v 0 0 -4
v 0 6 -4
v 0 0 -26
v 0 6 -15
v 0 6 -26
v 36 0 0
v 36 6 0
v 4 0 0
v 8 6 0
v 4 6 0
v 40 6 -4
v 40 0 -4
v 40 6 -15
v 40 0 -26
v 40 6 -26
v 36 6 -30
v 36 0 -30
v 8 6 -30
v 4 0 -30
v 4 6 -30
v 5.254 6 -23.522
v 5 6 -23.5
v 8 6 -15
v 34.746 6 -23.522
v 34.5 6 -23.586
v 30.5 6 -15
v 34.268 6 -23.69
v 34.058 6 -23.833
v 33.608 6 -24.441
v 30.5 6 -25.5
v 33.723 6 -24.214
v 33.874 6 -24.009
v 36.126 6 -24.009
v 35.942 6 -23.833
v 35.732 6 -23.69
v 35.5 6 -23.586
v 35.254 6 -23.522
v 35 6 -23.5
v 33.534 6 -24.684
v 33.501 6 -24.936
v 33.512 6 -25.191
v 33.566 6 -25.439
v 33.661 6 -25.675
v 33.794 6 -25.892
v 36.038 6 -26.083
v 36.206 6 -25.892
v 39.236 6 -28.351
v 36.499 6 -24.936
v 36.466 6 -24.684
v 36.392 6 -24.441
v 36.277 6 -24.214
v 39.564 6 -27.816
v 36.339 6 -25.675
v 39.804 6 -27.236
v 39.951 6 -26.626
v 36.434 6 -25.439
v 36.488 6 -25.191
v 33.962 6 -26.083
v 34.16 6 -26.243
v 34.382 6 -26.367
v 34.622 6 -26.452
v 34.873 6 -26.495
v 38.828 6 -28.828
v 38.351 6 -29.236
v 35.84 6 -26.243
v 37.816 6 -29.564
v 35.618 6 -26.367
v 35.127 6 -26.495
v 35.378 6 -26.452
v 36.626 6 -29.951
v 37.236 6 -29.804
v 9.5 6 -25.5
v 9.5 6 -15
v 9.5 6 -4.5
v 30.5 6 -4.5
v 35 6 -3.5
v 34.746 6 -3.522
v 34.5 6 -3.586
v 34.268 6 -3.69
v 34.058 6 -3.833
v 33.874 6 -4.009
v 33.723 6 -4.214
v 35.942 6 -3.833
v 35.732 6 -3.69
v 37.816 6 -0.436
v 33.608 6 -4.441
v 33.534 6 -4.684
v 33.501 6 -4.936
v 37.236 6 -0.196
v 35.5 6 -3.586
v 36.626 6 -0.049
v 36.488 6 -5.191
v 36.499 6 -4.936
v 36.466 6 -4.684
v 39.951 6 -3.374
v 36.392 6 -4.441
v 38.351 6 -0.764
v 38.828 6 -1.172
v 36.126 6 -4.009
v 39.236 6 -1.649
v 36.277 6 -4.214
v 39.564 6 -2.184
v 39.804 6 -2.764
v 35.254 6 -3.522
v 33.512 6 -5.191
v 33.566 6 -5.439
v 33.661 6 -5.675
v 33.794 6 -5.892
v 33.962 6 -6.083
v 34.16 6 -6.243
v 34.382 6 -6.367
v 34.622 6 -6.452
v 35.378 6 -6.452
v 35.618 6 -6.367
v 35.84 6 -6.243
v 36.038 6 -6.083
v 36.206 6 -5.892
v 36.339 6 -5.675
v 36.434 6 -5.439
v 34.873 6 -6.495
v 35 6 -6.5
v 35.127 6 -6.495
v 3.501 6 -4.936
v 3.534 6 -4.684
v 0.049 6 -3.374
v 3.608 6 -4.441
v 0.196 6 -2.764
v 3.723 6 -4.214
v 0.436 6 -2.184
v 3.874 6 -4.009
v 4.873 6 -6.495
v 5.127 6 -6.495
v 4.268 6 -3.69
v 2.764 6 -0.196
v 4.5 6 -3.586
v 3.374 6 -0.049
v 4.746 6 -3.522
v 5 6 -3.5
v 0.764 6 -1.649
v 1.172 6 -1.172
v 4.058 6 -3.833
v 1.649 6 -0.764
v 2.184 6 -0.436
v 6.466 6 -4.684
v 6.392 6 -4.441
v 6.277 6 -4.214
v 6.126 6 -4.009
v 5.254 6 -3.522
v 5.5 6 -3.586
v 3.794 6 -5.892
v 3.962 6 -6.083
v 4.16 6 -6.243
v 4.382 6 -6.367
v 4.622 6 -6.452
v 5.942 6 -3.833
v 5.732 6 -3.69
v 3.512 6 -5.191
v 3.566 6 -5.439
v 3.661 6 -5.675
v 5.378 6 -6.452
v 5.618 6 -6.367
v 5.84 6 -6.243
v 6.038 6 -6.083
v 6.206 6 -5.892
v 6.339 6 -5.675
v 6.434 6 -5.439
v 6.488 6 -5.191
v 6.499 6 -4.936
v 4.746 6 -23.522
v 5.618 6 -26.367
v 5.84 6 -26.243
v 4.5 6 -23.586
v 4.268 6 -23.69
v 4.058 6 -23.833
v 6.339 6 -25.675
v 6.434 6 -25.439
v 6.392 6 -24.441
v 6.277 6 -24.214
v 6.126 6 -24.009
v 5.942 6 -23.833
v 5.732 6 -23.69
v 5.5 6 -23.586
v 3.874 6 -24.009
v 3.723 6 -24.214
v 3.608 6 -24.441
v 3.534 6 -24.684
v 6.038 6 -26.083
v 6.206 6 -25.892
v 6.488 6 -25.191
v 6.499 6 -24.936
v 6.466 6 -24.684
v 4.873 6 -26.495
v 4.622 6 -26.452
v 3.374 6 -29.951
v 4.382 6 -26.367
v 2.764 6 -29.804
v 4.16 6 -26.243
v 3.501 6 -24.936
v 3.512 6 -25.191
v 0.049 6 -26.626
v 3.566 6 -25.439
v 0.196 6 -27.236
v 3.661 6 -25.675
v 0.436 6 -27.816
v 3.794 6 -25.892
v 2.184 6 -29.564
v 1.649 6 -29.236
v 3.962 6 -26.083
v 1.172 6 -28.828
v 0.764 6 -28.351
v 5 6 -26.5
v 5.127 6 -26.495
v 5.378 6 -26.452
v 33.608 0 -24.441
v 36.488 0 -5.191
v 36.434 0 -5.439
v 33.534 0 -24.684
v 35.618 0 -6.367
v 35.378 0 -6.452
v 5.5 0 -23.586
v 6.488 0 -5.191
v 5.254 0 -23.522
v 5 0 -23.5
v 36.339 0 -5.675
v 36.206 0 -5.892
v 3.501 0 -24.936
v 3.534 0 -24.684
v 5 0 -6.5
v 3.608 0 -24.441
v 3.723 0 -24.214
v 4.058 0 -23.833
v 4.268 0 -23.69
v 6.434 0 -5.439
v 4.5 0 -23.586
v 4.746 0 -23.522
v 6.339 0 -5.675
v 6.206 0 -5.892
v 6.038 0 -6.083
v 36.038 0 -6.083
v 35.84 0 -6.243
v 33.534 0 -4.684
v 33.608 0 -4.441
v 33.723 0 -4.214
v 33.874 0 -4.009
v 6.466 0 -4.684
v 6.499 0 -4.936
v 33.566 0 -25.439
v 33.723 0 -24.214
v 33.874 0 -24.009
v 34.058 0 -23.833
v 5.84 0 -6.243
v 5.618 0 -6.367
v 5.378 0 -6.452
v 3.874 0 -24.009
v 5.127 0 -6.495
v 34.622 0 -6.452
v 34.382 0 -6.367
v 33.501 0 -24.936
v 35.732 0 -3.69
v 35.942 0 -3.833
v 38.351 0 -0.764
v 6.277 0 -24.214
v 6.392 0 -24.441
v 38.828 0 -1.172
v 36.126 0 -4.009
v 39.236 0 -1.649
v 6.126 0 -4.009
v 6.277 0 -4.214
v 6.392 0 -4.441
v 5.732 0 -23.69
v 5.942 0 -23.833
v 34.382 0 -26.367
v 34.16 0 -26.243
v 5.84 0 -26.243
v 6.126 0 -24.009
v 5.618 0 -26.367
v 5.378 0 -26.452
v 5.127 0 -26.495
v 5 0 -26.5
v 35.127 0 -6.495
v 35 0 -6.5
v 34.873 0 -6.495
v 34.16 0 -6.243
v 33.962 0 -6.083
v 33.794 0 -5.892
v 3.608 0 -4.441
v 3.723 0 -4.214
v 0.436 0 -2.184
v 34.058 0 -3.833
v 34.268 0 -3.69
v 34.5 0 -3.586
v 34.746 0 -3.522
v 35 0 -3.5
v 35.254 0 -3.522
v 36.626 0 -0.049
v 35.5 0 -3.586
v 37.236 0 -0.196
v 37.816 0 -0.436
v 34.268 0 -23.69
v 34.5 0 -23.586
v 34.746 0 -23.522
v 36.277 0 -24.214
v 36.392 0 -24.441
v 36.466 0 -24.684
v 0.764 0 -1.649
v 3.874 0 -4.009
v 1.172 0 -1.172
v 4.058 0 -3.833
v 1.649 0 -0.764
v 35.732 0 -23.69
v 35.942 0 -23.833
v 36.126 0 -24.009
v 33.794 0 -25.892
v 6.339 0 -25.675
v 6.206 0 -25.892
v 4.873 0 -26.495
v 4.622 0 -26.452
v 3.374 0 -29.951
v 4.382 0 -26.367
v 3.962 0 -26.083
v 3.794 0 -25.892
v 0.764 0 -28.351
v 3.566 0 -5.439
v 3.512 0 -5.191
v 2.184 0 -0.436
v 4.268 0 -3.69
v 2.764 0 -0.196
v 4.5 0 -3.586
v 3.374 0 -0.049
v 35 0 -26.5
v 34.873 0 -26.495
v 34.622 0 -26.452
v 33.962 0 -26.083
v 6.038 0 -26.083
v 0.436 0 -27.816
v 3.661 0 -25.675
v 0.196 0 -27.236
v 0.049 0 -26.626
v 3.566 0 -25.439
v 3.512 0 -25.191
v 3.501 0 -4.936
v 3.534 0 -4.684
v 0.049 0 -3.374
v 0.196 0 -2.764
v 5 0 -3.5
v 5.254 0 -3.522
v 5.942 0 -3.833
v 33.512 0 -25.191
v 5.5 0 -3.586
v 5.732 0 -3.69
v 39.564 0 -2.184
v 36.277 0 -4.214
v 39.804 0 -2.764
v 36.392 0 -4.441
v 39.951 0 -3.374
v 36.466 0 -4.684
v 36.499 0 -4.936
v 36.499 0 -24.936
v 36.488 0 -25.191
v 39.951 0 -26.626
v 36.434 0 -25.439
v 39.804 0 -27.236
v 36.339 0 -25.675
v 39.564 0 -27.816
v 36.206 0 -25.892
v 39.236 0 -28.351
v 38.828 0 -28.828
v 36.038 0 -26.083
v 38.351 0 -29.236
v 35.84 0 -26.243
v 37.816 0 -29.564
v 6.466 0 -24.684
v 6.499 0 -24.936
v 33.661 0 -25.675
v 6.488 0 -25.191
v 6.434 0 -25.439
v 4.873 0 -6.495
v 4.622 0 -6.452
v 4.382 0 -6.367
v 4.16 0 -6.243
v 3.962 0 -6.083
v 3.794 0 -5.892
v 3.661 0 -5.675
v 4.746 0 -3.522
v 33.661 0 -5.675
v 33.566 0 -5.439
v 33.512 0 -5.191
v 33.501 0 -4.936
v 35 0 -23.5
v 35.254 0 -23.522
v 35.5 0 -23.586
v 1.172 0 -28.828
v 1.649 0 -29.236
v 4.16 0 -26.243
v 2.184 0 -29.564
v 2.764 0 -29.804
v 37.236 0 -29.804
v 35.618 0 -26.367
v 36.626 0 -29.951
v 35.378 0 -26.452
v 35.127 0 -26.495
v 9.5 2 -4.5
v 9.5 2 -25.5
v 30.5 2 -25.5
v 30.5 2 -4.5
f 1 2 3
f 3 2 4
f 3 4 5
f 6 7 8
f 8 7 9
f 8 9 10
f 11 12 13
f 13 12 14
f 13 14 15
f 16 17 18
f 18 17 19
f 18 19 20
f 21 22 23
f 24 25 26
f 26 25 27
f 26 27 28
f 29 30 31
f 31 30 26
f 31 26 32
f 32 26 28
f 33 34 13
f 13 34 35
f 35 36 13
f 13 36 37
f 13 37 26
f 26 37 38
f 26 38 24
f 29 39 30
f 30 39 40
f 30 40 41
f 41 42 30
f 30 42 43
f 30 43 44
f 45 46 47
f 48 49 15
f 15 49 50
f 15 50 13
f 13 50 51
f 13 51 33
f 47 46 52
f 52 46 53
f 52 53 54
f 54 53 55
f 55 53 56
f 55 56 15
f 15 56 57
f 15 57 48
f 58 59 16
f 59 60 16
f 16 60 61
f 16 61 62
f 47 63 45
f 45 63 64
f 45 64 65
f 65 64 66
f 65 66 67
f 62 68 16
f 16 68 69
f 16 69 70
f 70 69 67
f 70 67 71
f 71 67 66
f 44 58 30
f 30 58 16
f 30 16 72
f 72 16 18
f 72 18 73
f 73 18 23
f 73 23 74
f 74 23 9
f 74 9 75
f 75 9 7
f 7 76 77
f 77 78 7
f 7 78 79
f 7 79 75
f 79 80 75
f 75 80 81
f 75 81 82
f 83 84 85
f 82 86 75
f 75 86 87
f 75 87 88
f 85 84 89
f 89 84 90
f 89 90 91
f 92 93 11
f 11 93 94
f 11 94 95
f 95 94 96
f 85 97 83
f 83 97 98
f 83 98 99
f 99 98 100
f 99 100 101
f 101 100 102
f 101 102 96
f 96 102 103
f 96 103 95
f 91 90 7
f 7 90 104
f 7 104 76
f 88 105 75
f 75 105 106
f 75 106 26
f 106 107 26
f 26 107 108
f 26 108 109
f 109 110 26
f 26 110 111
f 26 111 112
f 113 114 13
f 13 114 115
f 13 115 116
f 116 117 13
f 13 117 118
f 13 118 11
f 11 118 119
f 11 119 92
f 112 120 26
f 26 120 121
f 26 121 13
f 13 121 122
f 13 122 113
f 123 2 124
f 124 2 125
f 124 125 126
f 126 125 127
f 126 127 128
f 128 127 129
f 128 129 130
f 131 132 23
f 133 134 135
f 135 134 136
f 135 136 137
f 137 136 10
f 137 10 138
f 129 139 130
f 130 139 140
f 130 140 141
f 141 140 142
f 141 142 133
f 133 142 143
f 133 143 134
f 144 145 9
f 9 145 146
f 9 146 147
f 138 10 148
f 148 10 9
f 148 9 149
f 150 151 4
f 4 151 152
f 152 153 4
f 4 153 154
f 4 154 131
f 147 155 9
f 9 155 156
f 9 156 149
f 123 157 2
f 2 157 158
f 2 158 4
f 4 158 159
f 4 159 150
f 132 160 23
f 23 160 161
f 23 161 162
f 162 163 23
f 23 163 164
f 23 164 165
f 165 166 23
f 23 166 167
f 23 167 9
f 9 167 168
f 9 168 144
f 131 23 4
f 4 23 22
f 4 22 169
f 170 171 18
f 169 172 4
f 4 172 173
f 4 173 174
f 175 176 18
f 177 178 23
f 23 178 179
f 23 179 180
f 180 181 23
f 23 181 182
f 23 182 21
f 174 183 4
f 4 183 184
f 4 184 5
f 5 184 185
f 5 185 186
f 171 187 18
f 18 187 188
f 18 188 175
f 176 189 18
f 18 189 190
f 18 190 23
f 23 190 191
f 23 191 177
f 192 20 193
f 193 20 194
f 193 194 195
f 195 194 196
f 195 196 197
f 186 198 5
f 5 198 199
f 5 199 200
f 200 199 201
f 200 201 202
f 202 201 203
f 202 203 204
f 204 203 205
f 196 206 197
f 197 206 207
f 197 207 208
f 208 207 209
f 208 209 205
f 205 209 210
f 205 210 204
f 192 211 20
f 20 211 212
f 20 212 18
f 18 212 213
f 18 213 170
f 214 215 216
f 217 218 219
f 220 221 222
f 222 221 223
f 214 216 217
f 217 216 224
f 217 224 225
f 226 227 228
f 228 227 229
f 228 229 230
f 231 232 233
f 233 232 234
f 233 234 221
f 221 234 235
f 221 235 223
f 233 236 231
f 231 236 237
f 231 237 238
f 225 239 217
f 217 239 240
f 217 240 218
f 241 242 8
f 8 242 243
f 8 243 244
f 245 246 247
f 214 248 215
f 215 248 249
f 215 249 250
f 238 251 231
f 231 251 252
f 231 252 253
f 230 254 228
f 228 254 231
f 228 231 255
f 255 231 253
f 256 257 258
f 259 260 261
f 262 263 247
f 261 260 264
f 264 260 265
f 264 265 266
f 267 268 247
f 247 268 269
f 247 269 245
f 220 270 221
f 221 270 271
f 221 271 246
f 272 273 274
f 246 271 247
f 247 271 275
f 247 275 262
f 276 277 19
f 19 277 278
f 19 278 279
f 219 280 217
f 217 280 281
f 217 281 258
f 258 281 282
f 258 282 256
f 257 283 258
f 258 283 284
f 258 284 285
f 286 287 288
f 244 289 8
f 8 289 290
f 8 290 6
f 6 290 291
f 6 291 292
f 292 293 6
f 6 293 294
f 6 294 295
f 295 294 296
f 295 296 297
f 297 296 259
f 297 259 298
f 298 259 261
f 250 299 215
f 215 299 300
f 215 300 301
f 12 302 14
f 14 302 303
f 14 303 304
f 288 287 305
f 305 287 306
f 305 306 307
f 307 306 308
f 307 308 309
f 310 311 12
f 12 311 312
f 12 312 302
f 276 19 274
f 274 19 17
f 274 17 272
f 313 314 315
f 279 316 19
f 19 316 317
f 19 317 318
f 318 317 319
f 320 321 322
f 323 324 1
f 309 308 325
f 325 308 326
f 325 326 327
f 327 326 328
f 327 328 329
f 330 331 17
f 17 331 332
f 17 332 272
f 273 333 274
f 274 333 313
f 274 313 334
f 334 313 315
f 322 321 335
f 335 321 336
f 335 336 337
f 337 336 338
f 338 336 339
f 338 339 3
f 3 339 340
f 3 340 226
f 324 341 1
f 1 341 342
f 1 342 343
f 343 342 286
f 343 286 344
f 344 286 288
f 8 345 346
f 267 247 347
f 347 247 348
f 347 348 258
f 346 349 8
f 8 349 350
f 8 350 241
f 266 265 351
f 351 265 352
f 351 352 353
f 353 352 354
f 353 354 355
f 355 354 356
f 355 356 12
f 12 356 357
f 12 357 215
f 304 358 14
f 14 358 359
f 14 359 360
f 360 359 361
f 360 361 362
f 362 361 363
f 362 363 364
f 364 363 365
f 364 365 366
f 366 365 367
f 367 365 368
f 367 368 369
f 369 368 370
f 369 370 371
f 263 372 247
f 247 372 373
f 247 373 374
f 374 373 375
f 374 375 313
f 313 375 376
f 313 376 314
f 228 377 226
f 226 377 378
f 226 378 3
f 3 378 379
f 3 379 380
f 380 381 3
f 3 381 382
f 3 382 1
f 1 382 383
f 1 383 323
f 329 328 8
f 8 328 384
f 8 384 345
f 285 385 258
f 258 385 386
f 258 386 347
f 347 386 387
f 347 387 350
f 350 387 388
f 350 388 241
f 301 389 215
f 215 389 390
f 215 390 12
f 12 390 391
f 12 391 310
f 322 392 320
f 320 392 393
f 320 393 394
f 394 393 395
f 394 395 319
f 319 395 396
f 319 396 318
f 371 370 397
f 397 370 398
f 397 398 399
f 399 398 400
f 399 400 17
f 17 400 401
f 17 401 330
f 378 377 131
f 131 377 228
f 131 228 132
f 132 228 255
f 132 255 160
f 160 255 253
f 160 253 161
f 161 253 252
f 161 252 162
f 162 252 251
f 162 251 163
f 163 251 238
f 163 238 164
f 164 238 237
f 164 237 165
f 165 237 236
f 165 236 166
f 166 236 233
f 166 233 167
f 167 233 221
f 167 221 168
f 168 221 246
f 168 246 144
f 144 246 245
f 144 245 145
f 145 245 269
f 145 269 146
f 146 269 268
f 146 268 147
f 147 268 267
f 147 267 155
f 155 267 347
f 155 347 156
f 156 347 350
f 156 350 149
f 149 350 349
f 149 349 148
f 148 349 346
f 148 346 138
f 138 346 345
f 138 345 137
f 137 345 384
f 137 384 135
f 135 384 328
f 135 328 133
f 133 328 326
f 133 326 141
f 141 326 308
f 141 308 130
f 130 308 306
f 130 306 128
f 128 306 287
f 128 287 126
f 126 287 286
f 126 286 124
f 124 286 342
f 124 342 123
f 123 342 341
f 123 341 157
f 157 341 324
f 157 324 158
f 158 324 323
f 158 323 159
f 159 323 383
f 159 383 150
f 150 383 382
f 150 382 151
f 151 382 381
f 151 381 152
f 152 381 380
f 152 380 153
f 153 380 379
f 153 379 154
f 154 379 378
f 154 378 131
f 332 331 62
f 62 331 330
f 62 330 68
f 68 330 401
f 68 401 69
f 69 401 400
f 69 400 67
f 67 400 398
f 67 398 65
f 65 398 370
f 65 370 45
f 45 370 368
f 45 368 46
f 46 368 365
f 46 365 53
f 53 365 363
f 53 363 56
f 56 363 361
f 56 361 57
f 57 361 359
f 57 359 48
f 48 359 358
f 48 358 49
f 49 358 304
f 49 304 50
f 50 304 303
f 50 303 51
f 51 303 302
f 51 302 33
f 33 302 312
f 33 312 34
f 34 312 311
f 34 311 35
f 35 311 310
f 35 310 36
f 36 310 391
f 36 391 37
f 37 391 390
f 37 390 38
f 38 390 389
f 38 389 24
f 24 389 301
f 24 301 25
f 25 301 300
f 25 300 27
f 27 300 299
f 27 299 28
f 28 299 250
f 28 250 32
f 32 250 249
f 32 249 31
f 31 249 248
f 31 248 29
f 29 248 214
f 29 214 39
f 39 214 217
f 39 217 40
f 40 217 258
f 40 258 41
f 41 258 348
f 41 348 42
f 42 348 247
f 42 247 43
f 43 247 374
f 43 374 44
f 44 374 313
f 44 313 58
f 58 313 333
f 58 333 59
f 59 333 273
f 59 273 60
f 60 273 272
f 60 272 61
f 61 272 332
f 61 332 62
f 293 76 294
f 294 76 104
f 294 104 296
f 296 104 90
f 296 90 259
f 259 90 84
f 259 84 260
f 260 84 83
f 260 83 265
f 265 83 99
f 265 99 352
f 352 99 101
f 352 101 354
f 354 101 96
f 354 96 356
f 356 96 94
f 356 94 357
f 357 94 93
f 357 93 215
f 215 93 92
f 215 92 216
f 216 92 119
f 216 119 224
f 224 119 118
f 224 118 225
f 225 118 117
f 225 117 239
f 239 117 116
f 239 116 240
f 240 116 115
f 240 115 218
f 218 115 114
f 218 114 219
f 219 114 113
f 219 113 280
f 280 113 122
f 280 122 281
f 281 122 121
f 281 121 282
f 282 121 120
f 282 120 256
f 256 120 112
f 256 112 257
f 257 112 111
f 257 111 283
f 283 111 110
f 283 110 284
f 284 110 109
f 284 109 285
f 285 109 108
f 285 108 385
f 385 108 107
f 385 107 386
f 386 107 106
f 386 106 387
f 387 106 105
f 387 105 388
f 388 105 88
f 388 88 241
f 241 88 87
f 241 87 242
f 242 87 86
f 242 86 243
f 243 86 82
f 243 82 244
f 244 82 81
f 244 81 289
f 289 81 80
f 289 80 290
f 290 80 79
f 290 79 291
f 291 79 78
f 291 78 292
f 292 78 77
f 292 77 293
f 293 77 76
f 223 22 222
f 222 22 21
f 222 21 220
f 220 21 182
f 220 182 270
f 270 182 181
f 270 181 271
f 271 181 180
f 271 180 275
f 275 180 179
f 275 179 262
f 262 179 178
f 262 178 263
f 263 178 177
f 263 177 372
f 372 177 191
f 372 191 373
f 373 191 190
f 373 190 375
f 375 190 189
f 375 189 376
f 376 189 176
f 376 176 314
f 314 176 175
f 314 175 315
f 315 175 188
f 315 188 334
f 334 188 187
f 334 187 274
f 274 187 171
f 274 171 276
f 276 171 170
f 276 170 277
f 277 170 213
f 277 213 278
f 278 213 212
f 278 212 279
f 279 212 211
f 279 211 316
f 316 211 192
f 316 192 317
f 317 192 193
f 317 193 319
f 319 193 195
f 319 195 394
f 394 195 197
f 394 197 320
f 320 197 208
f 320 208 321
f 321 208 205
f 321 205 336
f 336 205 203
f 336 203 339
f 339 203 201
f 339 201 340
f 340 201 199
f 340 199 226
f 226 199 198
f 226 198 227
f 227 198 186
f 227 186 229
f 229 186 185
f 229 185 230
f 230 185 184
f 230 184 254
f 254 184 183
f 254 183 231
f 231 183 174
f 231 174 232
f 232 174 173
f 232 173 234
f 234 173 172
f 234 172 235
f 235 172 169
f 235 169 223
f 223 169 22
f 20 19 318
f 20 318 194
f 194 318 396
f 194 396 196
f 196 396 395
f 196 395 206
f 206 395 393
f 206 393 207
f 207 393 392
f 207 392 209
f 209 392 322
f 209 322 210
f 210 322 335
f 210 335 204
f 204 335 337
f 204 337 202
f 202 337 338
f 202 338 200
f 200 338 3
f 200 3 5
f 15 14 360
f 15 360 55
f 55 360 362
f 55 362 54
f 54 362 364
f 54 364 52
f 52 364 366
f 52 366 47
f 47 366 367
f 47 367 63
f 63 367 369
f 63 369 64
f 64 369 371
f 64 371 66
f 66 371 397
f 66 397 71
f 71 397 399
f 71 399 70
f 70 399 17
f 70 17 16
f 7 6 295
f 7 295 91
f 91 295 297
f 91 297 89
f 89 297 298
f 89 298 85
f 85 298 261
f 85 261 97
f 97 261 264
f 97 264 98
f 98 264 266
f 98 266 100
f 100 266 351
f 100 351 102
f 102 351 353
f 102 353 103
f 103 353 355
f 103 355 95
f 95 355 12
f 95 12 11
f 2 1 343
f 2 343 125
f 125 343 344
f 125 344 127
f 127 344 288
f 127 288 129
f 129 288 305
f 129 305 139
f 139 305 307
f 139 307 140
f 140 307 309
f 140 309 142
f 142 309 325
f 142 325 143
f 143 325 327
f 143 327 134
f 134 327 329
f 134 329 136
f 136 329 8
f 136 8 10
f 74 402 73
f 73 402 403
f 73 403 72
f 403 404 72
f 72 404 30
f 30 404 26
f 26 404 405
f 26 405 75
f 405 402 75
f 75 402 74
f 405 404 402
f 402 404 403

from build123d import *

# Parameters (mm, degrees)
SKETCH1_W           = 40
SKETCH1_H           = 30
BOSS_EXTRUDE1_DEPTH = 6
SKETCH2_R           = 1.5
CUT_EXTRUDE1_DEPTH  = 6
FILLET1_R           = 4
SKETCH3_W           = 21
SKETCH3_H           = 21
CUT_EXTRUDE2_DEPTH  = 4


with BuildPart() as part:
    # Sketch1 → Boss-Extrude1 (new body)
    with BuildSketch(Plane(origin=(0, 0, 0), x_dir=(1, 0, 0), z_dir=(0, 1, 0))):
        with Locations((20, 15)):
            Rectangle(SKETCH1_W, SKETCH1_H)
    extrude(amount=BOSS_EXTRUDE1_DEPTH)

    # Sketch2 → Cut-Extrude1 (cut)
    with BuildSketch(Plane(origin=(0, 6, 0), x_dir=(1, 0, 0), z_dir=(0, 1, 0))):
        with Locations(Location((5, 5, 0), (0, 0, 270))):
            Circle(SKETCH2_R)
        with Locations(Location((5, 25, 0), (0, 0, 90))):
            Circle(SKETCH2_R)
        with Locations(Location((35, 5, 0), (0, 0, 90))):
            Circle(SKETCH2_R)
        with Locations(Location((35, 25, 0), (0, 0, 270))):
            Circle(SKETCH2_R)
    extrude(amount=-CUT_EXTRUDE1_DEPTH, mode=Mode.SUBTRACT)

    # Fillet1
    fillet1_edges = [part.edges().sort_by_distance(p)[0] for p in [
        (0, 3, -30),
        (40, 3, -30),
        (40, 3, 0),
        (0, 3, 0),
    ]]
    fillet(fillet1_edges, radius=FILLET1_R)

    # Sketch3 → Cut-Extrude2 (cut)
    with BuildSketch(Plane(origin=(0, 6, 0), x_dir=(1, 0, 0), z_dir=(0, 1, 0))):
        with Locations((20, 15)):
            Rectangle(SKETCH3_W, SKETCH3_H)
    extrude(amount=-CUT_EXTRUDE2_DEPTH, mode=Mode.SUBTRACT)


solid = part.part
